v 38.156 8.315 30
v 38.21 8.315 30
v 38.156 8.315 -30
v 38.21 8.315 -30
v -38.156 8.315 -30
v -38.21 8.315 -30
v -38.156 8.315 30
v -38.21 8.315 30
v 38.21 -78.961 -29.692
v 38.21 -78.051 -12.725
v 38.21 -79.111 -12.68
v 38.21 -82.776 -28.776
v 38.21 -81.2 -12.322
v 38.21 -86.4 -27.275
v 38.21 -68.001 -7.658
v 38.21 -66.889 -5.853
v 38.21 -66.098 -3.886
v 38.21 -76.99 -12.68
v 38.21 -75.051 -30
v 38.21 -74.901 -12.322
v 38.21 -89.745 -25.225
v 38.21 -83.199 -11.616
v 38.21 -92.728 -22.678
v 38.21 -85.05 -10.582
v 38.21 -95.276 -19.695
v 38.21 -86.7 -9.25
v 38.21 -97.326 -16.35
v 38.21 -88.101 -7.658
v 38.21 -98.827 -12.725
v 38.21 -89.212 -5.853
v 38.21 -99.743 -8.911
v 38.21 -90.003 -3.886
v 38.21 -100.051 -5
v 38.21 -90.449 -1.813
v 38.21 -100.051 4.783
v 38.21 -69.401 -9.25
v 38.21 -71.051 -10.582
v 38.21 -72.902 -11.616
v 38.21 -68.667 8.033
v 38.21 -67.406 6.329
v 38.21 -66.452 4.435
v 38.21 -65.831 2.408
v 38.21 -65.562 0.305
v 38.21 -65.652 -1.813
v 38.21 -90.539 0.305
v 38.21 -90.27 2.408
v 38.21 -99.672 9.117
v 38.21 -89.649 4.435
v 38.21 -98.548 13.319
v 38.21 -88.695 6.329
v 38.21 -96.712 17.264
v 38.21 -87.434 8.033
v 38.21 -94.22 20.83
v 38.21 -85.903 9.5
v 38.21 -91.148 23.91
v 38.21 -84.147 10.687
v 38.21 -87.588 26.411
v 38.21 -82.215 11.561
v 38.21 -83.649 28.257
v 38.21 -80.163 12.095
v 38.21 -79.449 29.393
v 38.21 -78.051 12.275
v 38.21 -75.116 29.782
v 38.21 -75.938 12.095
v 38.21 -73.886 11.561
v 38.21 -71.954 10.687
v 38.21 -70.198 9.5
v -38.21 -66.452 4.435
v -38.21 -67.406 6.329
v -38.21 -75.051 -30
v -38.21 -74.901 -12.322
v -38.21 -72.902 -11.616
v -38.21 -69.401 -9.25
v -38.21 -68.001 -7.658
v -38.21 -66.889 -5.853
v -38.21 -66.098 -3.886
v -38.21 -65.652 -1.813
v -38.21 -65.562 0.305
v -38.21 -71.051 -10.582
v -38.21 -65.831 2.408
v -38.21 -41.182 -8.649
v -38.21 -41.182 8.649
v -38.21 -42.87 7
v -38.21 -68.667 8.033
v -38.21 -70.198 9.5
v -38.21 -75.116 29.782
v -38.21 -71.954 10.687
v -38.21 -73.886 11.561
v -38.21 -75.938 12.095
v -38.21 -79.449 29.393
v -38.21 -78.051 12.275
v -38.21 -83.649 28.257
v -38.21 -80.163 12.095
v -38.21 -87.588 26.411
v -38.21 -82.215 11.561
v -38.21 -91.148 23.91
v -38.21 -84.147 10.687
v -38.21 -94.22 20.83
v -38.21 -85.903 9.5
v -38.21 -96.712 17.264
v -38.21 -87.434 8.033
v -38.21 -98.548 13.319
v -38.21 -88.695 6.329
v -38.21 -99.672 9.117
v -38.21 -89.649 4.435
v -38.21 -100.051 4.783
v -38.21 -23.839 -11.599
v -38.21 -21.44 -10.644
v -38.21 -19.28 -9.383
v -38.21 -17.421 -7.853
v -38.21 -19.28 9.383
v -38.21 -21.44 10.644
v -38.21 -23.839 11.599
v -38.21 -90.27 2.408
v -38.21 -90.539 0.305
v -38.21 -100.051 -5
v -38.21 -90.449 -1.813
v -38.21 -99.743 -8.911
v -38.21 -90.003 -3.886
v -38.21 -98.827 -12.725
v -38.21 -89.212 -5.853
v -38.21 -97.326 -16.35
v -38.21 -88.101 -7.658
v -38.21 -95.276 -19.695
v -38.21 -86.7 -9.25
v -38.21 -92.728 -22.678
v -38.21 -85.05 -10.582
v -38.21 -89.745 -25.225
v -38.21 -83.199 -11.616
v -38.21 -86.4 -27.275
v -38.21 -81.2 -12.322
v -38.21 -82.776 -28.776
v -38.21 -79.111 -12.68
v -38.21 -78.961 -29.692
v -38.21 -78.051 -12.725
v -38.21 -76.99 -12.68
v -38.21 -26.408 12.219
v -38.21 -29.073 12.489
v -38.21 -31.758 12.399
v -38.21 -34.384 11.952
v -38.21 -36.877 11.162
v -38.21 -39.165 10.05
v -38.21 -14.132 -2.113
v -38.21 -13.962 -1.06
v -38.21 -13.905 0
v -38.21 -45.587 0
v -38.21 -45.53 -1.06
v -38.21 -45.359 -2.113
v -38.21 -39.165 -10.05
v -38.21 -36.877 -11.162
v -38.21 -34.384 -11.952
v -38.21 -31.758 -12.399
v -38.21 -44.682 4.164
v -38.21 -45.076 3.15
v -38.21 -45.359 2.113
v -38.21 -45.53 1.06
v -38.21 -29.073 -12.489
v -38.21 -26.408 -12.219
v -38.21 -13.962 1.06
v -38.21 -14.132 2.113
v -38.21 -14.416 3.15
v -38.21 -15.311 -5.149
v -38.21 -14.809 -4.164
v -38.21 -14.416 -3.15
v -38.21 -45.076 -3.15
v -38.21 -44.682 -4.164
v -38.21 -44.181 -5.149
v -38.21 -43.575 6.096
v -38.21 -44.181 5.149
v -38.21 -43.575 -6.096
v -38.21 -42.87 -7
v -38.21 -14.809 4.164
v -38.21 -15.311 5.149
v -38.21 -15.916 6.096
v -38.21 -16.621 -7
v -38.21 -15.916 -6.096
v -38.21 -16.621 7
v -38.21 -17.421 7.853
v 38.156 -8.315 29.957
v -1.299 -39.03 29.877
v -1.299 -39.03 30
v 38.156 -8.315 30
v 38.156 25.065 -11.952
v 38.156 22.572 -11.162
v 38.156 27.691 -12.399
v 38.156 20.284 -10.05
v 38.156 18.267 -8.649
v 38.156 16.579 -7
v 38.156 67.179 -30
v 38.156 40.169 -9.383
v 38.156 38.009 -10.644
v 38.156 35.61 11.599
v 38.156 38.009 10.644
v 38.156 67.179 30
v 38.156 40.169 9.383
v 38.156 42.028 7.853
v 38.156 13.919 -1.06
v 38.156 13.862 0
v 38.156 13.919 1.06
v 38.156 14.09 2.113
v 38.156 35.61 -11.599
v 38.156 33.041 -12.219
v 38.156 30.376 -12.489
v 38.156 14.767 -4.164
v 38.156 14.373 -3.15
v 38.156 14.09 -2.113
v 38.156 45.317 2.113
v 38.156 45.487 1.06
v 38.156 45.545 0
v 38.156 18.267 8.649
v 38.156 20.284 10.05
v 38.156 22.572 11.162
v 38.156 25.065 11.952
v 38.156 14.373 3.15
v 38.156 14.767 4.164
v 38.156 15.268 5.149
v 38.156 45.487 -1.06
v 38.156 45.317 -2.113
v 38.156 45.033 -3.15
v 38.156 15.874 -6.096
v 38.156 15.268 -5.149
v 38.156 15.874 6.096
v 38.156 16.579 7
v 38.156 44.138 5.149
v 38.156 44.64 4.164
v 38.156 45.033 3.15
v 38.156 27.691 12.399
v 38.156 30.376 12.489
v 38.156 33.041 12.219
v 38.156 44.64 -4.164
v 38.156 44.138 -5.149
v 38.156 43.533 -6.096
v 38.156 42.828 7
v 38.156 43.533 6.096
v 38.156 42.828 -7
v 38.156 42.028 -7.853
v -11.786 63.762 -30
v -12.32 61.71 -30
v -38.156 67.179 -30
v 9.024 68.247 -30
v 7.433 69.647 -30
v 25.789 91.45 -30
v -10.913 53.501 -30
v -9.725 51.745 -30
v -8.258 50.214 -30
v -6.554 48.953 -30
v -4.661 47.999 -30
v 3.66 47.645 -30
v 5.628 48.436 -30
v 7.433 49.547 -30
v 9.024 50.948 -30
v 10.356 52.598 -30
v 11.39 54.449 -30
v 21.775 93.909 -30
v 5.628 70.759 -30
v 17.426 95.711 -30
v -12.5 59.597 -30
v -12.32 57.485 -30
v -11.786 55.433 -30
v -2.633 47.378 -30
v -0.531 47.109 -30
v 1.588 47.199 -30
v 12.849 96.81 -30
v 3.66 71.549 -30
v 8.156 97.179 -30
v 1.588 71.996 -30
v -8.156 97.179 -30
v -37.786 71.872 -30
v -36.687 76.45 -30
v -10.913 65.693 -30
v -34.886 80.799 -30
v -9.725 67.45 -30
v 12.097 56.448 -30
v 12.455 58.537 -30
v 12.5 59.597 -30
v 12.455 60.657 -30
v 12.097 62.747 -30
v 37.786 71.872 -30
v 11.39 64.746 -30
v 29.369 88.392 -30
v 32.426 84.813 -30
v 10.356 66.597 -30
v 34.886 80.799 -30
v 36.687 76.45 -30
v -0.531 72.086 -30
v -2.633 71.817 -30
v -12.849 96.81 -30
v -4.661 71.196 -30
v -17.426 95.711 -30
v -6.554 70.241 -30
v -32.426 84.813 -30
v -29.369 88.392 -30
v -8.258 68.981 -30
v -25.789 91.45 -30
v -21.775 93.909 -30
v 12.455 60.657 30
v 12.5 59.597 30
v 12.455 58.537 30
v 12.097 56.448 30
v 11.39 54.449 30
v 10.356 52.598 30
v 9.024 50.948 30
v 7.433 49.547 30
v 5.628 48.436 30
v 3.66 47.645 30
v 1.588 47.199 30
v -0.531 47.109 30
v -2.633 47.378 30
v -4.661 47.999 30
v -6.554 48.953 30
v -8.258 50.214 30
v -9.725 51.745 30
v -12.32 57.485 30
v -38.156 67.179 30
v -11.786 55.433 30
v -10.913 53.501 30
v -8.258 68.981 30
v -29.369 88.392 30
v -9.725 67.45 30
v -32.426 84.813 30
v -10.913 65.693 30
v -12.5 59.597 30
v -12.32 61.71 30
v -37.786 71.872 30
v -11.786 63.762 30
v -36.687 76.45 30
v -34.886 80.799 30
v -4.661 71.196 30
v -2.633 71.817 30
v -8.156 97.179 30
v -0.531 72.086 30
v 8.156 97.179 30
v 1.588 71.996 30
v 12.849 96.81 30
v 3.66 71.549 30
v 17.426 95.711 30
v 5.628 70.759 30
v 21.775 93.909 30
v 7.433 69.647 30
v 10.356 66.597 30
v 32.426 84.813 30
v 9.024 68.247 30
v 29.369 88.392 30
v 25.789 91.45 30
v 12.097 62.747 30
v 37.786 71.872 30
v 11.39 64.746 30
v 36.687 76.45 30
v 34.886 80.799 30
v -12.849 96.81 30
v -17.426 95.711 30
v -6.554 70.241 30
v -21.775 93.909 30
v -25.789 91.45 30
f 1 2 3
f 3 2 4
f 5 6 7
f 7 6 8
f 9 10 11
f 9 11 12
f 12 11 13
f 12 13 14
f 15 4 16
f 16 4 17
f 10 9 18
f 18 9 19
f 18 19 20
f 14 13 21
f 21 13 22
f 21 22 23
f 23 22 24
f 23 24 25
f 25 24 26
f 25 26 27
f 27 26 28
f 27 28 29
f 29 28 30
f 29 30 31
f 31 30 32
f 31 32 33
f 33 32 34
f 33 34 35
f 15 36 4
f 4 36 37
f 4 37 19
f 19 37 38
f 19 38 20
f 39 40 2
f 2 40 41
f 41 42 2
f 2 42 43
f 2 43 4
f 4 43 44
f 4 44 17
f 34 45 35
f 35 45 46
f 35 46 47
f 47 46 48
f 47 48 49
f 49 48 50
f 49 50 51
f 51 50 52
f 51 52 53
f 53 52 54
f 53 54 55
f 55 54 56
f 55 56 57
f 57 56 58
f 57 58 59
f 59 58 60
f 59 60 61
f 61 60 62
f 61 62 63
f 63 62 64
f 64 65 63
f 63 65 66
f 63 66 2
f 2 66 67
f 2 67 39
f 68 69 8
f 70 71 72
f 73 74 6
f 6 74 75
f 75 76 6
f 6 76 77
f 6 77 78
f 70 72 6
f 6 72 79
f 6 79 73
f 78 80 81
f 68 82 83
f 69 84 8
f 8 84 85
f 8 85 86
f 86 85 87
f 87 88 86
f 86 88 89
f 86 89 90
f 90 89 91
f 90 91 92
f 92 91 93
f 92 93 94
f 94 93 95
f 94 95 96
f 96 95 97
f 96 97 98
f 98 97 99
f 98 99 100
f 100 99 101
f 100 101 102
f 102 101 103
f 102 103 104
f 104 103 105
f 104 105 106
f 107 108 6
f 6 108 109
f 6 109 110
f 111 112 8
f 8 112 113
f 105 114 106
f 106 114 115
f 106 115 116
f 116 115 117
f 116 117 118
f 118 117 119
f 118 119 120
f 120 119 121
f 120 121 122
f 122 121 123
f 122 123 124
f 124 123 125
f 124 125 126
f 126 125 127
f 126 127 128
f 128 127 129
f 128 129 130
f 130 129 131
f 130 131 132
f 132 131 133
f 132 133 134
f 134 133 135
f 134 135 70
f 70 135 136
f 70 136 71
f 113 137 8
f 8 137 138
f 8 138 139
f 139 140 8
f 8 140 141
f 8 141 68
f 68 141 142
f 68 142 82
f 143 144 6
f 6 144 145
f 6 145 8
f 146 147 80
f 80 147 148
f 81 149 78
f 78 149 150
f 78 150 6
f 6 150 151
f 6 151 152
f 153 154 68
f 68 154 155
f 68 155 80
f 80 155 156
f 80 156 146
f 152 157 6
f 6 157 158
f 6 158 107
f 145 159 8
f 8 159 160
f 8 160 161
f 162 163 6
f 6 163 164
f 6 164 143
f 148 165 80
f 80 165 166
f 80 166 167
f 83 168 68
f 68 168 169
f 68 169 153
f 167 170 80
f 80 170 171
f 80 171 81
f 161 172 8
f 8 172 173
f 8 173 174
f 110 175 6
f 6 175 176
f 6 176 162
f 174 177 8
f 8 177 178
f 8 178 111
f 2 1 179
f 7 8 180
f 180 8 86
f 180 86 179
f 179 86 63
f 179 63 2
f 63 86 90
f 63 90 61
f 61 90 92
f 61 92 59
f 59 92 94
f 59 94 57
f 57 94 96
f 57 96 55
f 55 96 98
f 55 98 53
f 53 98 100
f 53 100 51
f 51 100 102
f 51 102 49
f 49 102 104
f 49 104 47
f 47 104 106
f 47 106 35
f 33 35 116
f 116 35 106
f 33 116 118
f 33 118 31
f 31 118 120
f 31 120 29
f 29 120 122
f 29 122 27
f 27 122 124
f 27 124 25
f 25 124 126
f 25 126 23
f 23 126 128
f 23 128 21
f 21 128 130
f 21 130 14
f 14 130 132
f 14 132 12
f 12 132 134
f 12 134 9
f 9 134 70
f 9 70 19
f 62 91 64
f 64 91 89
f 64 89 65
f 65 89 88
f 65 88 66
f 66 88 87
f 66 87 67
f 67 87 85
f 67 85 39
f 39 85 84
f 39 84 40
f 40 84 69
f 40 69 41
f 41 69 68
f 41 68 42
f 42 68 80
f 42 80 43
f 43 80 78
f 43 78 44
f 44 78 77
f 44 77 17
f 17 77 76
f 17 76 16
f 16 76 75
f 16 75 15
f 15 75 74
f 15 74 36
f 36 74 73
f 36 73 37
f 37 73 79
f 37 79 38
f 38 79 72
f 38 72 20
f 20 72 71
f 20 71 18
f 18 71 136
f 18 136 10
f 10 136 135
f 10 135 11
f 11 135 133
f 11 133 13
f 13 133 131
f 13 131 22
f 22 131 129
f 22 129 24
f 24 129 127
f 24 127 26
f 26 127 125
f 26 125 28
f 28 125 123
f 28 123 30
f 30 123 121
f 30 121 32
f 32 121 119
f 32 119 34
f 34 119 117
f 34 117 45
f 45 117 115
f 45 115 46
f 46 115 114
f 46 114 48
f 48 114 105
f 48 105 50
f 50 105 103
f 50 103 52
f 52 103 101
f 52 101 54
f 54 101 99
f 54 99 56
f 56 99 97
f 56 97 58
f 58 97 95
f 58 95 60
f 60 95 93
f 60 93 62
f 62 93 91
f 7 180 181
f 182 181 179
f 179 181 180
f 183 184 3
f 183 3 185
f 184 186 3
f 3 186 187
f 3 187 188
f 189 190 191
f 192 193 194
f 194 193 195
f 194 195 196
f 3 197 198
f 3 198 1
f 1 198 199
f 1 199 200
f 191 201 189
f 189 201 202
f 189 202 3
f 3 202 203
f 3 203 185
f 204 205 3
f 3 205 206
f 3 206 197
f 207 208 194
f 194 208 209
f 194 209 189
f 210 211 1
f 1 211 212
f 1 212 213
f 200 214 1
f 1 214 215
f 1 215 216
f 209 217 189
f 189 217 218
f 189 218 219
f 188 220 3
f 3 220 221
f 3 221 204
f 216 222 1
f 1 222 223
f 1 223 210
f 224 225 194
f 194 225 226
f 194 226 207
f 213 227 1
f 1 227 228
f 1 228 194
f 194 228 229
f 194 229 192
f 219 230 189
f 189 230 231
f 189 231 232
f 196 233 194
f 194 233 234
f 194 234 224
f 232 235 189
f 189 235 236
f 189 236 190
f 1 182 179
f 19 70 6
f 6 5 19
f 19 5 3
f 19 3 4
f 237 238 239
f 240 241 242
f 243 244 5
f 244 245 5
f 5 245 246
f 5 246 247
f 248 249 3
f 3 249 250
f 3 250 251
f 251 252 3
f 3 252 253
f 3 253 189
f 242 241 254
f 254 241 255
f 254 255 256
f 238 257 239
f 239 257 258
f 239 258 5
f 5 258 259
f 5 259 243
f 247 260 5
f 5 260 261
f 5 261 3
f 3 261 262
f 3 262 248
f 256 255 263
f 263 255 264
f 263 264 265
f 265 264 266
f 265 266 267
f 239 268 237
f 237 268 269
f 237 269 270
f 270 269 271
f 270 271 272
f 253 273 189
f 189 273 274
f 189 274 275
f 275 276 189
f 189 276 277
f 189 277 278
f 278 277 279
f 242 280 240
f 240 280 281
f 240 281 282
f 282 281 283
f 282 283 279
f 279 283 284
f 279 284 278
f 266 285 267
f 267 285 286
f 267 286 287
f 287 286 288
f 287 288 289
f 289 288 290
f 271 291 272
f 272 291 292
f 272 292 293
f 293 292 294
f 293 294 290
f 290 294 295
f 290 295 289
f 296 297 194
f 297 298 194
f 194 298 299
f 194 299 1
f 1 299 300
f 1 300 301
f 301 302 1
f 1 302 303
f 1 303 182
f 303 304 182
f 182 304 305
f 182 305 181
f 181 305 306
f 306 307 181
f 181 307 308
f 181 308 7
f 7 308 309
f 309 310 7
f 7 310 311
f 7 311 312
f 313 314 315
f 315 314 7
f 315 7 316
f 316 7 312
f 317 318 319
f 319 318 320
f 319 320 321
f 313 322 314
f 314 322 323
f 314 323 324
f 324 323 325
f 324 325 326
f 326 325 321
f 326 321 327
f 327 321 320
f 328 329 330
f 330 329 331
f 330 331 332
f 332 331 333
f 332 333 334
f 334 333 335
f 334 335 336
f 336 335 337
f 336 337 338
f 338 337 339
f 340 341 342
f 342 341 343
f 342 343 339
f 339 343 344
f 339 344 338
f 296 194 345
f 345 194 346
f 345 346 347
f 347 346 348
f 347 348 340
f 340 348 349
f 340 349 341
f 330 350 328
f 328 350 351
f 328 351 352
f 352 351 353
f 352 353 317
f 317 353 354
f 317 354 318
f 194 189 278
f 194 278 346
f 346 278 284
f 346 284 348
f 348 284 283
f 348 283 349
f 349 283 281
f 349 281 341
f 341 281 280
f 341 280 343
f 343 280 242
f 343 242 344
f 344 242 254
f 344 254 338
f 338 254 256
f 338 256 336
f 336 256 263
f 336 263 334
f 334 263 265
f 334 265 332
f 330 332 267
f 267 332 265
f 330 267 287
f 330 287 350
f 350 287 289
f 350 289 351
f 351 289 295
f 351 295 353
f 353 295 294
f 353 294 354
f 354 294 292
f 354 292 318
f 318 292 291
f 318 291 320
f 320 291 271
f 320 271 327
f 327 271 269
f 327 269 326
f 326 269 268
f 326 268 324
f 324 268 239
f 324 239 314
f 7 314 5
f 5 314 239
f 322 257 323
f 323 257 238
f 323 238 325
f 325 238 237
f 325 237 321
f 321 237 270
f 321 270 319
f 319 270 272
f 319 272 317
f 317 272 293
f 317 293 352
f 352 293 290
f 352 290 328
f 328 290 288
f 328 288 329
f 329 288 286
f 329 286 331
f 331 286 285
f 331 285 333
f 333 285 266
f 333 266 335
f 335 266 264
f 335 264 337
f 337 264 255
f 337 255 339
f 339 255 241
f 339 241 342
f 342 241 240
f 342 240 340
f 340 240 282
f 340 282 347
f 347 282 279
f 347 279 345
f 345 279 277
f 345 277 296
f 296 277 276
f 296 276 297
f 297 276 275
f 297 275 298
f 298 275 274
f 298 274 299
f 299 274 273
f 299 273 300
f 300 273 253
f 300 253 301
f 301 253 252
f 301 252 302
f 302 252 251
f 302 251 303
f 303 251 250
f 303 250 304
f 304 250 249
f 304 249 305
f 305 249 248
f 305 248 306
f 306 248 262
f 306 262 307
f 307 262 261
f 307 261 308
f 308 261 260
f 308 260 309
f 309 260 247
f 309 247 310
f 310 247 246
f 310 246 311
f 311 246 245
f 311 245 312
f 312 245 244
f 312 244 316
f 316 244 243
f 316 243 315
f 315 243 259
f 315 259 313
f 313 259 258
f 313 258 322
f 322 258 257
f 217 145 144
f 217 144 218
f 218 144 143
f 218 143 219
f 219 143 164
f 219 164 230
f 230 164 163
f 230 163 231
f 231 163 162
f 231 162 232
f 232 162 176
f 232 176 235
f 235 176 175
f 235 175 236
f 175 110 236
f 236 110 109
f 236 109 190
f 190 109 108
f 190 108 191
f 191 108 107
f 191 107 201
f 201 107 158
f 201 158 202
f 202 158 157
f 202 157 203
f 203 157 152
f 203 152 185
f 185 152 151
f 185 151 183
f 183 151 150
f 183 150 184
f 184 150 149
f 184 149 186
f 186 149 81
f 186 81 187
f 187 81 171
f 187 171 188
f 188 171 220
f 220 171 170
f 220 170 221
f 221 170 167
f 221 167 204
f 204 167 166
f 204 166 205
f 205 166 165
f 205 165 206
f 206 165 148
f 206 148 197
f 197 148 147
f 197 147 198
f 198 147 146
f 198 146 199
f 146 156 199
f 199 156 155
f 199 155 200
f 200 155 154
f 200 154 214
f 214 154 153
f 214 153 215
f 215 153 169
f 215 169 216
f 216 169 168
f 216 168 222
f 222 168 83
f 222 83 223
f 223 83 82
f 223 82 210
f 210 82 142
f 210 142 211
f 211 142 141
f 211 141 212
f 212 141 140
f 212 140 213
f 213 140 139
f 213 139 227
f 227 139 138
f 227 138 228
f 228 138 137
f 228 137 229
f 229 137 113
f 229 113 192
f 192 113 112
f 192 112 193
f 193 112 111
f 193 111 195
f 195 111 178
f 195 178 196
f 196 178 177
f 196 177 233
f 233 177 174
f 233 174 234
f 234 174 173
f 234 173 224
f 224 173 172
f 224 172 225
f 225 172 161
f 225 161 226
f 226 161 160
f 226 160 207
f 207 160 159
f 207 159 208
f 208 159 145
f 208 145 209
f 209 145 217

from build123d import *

# Parameters (mm, degrees)
SKETCH5_W           = 60
SKETCH5_H           = 60
SKETCH5_R           = 12.5
BOSS_EXTRUDE3_DEPTH = 25
SKETCH9_R           = 12.5
BOSS_EXTRUDE5_DEPTH = 30
SKETCH10_R          = 12.5
BOSS_EXTRUDE6_DEPTH = 38.21
SKETCH5_2_R         = 12.5
CUT_EXTRUDE2_DEPTH  = 115


with BuildPart() as part:
    # Sketch5 → Boss-Extrude3 (new, symmetric)
    with BuildSketch(Plane(origin=(0, 0, 0), x_dir=(0, 0, -1), z_dir=(0.7890840848346939, 0.6142852000989389, 0))):
        Rectangle(SKETCH5_W, SKETCH5_H)
        Circle(SKETCH5_R, mode=Mode.SUBTRACT)
    extrude(amount=BOSS_EXTRUDE3_DEPTH, both=True)

    # Sketch9 → Boss-Extrude5 (add, symmetric)
    with BuildSketch(Plane.XY):
        with BuildLine():
            Line((38.155658124, -8.315392543), (38.155658124, 67.179146139))
            ThreePointArc((38.155658124, 67.179146139), (29.368861559, 88.392349575), (8.155658124, 97.179146139))
            Line((8.155658124, 97.179146139), (-8.155658124, 97.179146139))
            ThreePointArc((-8.155658124, 97.179146139), (-29.368861559, 88.392349575), (-38.155658124, 67.179146139))
            Line((-38.155658124, 67.179146139), (-38.155658124, 8.315392543))
            Line((-38.155658124, 8.315392543), (38.155658124, -8.315392543))
        make_face()
        with Locations((0, 59.597275262)):
            Circle(SKETCH9_R, mode=Mode.SUBTRACT)
    extrude(amount=BOSS_EXTRUDE5_DEPTH, both=True)

    # Sketch10 → Boss-Extrude6 (add, symmetric)
    with BuildSketch(Plane(origin=(0, 0, 0), x_dir=(0, 0, -1), z_dir=(1, 0, 0))):
        with BuildLine():
            Line((-4.782552043, -100.050547257), (5, -100.050547257))
            ThreePointArc((5, -100.050547257), (22.67766953, -92.728216787), (30, -75.050547257))
            Line((30, -75.050547257), (30, 8.315392543))
            Line((30, 8.315392543), (-30, 8.315392543))
            Line((-30, 8.315392543), (-29.782467066, -75.115730425))
            ThreePointArc((-29.782467066, -75.115730425), (-22.437160802, -92.751247514), (-4.782552043, -100.050547257))
        make_face()
        with Locations((0.225286959, -78.050547257)):
            Circle(SKETCH10_R, mode=Mode.SUBTRACT)
    extrude(amount=BOSS_EXTRUDE6_DEPTH, both=True)

    # Sketch5<2> → Cut-Extrude2 (cut, symmetric)
    with BuildSketch(Plane(origin=(0, 0, 0), x_dir=(0, 0, -1), z_dir=(0.7890840848346939, 0.6142852000989389, 0))):
        Circle(SKETCH5_2_R)
    extrude(amount=CUT_EXTRUDE2_DEPTH, both=True, mode=Mode.SUBTRACT)


solid = part.part
